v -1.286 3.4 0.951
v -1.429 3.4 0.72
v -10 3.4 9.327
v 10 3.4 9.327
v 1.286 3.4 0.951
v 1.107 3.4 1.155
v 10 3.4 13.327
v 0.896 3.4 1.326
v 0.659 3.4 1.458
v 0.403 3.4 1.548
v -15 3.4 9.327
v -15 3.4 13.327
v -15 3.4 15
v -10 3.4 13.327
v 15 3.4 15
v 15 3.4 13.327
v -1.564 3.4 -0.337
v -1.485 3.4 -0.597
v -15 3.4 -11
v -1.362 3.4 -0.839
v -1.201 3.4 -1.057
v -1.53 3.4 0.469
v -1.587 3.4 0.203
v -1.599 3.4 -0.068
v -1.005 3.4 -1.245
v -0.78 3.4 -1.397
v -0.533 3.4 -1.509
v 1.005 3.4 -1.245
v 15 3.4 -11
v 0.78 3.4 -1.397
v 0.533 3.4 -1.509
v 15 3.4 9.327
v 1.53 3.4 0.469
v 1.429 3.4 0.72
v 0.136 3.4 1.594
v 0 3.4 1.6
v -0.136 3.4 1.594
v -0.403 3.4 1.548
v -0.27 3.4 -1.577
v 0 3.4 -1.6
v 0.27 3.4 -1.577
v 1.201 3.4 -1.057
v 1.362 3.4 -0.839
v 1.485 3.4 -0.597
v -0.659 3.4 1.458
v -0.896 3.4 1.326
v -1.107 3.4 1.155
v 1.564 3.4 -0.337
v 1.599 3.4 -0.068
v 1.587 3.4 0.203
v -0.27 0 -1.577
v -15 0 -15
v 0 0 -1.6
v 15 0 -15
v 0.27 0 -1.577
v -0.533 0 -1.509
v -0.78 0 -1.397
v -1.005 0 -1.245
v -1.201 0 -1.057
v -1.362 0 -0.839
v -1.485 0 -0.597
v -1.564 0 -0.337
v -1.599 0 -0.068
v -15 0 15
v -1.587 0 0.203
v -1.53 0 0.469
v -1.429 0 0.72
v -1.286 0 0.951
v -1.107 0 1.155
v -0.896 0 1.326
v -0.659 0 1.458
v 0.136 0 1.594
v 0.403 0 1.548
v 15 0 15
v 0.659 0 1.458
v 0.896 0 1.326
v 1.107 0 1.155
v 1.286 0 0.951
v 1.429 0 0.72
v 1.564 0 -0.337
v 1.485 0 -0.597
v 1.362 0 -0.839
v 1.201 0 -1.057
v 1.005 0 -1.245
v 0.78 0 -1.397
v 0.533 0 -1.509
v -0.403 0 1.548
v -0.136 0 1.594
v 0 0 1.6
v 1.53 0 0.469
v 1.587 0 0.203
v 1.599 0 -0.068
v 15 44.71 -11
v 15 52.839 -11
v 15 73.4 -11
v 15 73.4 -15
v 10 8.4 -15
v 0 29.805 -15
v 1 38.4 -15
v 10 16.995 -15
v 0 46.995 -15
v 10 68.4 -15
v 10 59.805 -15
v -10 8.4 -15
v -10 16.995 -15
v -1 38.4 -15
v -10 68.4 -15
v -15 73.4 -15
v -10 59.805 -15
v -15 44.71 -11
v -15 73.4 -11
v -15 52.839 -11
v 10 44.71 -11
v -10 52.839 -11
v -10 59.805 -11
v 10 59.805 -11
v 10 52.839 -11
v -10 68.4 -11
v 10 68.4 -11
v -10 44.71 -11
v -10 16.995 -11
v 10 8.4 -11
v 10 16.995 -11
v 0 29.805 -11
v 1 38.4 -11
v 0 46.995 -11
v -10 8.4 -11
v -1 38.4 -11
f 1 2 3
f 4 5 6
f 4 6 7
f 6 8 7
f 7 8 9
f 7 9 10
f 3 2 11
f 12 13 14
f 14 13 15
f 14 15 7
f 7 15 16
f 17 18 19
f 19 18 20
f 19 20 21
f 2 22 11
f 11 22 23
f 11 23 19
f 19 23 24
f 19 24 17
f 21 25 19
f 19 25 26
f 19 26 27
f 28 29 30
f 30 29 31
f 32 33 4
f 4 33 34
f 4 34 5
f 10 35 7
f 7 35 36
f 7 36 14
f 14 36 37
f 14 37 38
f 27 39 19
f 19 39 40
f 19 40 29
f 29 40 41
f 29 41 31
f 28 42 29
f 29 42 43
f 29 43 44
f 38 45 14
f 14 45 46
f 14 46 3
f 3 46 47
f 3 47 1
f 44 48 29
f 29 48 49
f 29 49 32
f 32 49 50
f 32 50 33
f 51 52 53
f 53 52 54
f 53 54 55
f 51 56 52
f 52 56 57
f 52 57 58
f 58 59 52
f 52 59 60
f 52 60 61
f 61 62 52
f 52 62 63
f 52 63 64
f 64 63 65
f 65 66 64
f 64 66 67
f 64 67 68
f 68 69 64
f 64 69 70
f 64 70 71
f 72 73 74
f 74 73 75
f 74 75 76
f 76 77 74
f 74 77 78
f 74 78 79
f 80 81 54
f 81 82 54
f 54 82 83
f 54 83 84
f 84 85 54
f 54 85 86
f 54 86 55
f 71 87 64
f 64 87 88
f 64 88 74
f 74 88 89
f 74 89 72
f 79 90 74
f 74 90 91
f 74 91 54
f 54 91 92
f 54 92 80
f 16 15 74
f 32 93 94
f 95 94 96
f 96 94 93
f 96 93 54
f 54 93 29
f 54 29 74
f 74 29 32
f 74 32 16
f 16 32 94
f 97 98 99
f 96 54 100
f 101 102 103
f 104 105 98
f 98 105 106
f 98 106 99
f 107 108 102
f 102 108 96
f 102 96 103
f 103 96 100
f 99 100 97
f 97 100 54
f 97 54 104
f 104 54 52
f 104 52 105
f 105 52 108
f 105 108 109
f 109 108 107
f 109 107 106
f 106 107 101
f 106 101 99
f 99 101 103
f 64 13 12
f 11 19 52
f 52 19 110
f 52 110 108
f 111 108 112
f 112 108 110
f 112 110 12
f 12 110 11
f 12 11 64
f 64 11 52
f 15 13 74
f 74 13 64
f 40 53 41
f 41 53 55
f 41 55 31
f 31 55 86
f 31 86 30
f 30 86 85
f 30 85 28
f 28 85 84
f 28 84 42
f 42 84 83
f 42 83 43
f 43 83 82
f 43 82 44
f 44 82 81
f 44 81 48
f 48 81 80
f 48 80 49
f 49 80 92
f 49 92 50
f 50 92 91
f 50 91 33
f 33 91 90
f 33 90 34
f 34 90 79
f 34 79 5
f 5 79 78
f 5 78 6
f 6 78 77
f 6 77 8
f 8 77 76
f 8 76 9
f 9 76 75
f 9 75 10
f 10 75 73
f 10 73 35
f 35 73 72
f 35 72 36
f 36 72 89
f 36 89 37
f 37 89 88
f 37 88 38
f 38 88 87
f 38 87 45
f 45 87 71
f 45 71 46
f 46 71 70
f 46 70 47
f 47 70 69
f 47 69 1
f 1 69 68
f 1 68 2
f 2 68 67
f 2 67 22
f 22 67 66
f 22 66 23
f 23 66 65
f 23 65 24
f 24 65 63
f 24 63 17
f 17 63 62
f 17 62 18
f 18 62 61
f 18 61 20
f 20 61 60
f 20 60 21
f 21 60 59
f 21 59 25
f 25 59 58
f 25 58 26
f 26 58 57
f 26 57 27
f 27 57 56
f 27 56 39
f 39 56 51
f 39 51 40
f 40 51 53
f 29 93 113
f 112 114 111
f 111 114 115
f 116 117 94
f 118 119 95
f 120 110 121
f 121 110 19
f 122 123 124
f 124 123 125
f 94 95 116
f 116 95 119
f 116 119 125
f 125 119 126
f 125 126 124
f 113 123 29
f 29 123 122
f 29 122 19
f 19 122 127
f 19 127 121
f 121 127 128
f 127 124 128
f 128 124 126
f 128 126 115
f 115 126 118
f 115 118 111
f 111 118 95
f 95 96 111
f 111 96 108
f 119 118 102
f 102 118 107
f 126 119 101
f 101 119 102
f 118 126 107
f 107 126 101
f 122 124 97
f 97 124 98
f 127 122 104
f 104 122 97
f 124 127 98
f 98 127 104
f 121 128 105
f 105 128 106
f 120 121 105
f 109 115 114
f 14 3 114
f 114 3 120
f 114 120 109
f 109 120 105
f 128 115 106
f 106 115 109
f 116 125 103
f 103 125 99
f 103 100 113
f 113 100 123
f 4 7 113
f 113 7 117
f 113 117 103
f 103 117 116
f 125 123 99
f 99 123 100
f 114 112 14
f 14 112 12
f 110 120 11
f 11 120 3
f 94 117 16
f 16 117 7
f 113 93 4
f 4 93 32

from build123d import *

# Parameters (mm, degrees)
SKETCH1_W           = 30
SKETCH1_H           = 30
SKETCH1_R           = 1.6
BOSS_EXTRUDE1_DEPTH = 3.4
SKETCH2_W           = 30
SKETCH2_H           = 4
BOSS_EXTRUDE2_DEPTH = 70
CUT_EXTRUDE2_REACH  = 6
BOSS_EXTRUDE3_DEPTH = 5
BOSS_EXTRUDE4_DEPTH = 5


with BuildPart() as part:
    # Sketch1 → Boss-Extrude1 (new body)
    with BuildSketch(Plane(origin=(0, 0, 0), x_dir=(1, 0, 0), z_dir=(0, 1, 0))):
        Rectangle(SKETCH1_W, SKETCH1_H)
        Circle(SKETCH1_R, mode=Mode.SUBTRACT)
    extrude(amount=BOSS_EXTRUDE1_DEPTH)

    # Sketch2 → Boss-Extrude2 (add)
    with BuildSketch(Plane(origin=(0, 3.4, 0), x_dir=(1, 0, 0), z_dir=(0, 1, 0))):
        with Locations((0, 13)):
            Rectangle(SKETCH2_W, SKETCH2_H)
    extrude(amount=BOSS_EXTRUDE2_DEPTH)

    # Sketch3 → Cut-Extrude2 (cut, up to next)
    with BuildSketch(Plane.XY.offset(-11), mode=Mode.PRIVATE) as cut_extrude2_sk1:
        Polygon((1, 38.4), (10, 16.994902993), (10, 59.805097007), align=None)
    cut_extrude2_tool1 = extrude(cut_extrude2_sk1.sketch, amount=-CUT_EXTRUDE2_REACH, mode=Mode.PRIVATE) & part.part
    add(cut_extrude2_tool1.solids().sort_by_distance((7, 38.4, -11))[0], mode=Mode.SUBTRACT)
    # Sketch3 → Cut-Extrude2 (cut, up to next)
    with BuildSketch(Plane.XY.offset(-11), mode=Mode.PRIVATE) as cut_extrude2_sk2:
        Polygon((-1, 38.4), (-10, 59.805097007), (-10, 16.994902993), align=None)
    cut_extrude2_tool2 = extrude(cut_extrude2_sk2.sketch, amount=-CUT_EXTRUDE2_REACH, mode=Mode.PRIVATE) & part.part
    add(cut_extrude2_tool2.solids().sort_by_distance((-7, 38.4, -11))[0], mode=Mode.SUBTRACT)
    # Sketch3 → Cut-Extrude2 (cut, up to next)
    with BuildSketch(Plane.XY.offset(-11), mode=Mode.PRIVATE) as cut_extrude2_sk3:
        Polygon((-10, 68.4), (0, 46.994902993), (10, 68.4), align=None)
    cut_extrude2_tool3 = extrude(cut_extrude2_sk3.sketch, amount=-CUT_EXTRUDE2_REACH, mode=Mode.PRIVATE) & part.part
    add(cut_extrude2_tool3.solids().sort_by_distance((0, 61.264968, -11))[0], mode=Mode.SUBTRACT)
    # Sketch3 → Cut-Extrude2 (cut, up to next)
    with BuildSketch(Plane.XY.offset(-11), mode=Mode.PRIVATE) as cut_extrude2_sk4:
        Polygon((0, 29.805097007), (-10, 8.4), (10, 8.4), align=None)
    cut_extrude2_tool4 = extrude(cut_extrude2_sk4.sketch, amount=-CUT_EXTRUDE2_REACH, mode=Mode.PRIVATE) & part.part
    add(cut_extrude2_tool4.solids().sort_by_distance((0, 15.535032, -11))[0], mode=Mode.SUBTRACT)

    # Sketch4 → Boss-Extrude3 (add)
    with BuildSketch(Plane.ZY.offset(15)):
        Polygon((-15, 52.839280477), (-11, 52.839280477), (15, 0), (11, 0), align=None)
    extrude(amount=-BOSS_EXTRUDE3_DEPTH)

    # Sketch5 → Boss-Extrude4 (add)
    with BuildSketch(Plane(origin=(15, 0, 0), x_dir=(0, 0, -1), z_dir=(1, 0, 0))):
        Polygon((15, 52.839280477), (11, 52.839280477), (-15, 0), (-11, 0), align=None)
    extrude(amount=-BOSS_EXTRUDE4_DEPTH)


solid = part.part
